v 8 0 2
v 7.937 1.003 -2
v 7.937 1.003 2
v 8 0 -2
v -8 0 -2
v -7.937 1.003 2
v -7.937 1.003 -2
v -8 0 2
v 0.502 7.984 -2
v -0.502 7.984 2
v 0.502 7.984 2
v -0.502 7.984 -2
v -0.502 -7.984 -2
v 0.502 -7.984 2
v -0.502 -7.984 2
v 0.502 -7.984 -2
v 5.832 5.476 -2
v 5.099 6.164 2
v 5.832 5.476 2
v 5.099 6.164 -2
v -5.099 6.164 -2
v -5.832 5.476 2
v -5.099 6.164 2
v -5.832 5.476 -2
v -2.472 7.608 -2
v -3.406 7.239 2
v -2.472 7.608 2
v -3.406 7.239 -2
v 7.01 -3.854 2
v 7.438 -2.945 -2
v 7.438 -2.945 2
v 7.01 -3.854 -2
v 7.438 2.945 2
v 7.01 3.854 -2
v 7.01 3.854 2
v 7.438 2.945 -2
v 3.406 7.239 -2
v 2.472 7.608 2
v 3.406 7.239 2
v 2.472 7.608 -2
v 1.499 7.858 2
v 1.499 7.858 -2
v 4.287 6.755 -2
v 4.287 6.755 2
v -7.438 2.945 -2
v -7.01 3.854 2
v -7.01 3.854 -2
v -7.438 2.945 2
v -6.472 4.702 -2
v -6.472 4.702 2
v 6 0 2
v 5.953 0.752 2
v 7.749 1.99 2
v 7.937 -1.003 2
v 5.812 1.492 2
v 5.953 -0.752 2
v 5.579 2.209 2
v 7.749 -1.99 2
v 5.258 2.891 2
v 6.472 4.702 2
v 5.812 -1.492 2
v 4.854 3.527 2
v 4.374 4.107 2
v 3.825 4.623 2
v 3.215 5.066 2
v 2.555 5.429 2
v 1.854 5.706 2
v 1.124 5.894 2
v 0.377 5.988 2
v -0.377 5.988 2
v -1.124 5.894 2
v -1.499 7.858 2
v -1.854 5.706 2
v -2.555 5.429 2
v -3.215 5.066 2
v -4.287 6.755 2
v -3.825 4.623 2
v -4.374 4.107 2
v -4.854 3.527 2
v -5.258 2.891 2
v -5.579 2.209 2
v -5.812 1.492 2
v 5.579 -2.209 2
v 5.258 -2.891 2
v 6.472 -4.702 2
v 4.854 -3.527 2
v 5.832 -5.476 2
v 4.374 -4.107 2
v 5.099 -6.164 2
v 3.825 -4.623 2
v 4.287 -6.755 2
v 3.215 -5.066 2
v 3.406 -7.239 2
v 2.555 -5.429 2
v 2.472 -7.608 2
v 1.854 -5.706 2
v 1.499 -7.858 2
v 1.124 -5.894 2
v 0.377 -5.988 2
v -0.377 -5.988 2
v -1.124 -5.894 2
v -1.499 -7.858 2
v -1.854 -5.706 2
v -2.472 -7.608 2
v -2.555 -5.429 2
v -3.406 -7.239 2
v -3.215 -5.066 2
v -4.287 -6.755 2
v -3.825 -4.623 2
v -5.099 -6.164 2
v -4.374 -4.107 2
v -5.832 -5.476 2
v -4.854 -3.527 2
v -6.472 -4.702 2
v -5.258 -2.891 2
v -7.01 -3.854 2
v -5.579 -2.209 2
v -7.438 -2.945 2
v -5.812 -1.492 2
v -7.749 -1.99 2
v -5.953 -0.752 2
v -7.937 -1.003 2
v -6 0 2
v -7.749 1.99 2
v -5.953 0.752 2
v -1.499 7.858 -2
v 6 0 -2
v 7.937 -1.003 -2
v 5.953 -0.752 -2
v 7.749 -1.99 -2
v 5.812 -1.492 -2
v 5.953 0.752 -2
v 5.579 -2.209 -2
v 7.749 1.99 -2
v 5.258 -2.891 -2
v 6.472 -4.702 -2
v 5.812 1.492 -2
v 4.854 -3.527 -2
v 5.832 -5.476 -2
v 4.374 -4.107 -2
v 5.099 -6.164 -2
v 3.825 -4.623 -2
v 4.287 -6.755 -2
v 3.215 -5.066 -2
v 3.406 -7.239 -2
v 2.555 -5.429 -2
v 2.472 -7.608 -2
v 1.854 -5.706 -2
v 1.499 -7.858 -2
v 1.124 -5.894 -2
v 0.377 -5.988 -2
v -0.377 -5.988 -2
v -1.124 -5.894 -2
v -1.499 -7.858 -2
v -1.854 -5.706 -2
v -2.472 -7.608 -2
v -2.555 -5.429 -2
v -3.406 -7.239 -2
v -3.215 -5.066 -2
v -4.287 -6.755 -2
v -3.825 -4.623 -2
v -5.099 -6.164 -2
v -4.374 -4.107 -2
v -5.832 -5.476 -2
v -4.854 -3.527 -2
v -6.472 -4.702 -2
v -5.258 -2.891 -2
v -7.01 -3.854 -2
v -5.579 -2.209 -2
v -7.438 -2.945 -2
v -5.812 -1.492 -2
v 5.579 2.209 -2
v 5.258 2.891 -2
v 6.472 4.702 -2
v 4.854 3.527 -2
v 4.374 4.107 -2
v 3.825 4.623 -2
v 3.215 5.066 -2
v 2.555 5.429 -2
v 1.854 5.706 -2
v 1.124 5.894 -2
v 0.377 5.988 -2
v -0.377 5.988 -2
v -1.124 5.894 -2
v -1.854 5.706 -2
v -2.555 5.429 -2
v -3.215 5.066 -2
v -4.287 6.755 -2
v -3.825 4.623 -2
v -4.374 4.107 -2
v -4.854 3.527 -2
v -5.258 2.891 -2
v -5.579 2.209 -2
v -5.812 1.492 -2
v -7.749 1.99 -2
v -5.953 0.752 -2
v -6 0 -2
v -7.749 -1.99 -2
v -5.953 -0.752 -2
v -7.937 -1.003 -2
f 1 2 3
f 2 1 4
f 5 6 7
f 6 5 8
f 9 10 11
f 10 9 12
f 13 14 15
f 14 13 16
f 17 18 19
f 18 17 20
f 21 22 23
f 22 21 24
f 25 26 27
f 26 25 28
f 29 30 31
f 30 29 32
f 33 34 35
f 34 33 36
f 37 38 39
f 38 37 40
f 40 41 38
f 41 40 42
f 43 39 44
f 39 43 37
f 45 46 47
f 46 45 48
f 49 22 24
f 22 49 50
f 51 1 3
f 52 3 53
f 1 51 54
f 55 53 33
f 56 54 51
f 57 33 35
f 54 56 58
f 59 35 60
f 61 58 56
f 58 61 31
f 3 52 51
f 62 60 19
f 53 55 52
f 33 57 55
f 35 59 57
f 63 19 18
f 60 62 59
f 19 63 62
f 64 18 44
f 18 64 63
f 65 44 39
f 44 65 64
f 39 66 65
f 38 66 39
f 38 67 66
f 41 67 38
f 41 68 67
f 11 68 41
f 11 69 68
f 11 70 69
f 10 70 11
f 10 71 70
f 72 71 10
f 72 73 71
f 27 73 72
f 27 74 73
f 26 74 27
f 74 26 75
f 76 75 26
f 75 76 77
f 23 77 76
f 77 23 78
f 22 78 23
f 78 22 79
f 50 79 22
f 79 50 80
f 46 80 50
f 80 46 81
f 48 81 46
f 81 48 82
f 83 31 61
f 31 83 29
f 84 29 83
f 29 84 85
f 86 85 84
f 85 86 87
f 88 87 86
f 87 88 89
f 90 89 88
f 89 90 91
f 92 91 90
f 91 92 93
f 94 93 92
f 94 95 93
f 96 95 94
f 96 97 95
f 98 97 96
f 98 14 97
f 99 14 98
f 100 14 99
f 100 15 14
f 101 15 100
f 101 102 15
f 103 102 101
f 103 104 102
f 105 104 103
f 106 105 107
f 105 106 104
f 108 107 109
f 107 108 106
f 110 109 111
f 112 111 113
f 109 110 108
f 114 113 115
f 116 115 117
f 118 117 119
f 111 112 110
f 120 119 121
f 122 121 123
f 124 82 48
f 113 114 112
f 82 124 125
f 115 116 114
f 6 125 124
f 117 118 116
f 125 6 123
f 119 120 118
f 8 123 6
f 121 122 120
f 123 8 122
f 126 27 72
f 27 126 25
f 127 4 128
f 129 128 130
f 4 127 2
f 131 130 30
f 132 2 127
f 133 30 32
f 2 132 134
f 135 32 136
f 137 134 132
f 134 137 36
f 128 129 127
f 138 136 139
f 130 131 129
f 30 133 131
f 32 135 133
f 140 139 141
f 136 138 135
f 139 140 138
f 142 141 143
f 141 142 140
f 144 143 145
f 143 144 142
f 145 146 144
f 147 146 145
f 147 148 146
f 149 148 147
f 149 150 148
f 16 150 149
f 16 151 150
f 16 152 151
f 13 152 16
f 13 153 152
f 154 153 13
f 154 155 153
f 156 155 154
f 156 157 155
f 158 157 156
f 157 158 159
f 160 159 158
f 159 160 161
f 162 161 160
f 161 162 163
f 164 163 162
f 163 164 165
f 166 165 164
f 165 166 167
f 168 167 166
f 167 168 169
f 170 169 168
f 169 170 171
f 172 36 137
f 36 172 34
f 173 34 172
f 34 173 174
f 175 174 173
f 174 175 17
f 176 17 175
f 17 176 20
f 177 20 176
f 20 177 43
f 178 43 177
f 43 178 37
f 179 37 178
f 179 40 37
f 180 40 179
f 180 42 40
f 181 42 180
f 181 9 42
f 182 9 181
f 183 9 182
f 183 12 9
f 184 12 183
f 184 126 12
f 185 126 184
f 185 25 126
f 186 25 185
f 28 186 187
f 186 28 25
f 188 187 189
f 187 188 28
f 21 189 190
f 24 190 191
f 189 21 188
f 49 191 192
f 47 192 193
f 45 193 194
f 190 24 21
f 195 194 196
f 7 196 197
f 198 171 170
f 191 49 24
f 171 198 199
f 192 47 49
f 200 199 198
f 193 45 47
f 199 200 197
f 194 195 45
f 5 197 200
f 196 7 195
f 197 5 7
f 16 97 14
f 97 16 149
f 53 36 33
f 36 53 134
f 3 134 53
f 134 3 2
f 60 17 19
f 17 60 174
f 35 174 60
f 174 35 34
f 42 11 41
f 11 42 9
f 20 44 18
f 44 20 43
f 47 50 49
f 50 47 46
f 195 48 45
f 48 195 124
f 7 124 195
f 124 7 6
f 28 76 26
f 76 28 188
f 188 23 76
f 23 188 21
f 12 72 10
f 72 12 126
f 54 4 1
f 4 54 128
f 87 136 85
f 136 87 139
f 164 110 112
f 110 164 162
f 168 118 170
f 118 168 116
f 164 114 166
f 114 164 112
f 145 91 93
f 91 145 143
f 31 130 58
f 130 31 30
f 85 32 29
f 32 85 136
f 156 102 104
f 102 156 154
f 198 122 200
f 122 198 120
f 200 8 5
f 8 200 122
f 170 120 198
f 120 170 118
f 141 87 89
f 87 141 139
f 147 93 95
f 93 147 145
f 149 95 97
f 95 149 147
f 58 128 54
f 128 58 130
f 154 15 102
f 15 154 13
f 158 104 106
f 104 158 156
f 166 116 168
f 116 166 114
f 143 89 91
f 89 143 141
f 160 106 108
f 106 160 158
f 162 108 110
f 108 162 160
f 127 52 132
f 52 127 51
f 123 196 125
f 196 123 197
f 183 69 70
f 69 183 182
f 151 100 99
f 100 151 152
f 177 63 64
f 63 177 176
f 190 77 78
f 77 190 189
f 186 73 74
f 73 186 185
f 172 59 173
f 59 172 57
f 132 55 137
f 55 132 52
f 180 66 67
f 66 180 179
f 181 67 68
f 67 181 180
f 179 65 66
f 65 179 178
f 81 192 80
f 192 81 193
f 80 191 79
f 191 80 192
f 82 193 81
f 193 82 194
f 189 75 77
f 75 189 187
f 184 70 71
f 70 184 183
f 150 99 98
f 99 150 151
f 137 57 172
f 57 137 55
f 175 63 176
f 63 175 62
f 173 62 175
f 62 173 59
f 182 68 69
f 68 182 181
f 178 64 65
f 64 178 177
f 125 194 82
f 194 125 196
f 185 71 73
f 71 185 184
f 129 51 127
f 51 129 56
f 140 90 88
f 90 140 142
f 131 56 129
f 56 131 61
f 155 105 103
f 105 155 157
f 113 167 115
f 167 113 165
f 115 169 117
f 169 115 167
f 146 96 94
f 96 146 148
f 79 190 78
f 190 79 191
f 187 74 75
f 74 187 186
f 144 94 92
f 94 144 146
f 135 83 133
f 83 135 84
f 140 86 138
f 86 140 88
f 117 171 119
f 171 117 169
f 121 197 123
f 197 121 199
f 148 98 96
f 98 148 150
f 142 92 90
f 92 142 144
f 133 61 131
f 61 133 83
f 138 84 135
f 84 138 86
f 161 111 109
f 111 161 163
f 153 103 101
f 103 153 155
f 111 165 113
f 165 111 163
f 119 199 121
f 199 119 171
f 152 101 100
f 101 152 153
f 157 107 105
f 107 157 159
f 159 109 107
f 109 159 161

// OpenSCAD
$fn = 50;


difference() {
	union() {
		translate(v = [0, 0, -2.0000000000]) {
			cylinder(h = 4, r = 8.0000000000);
		}
	}
	union() {
		translate(v = [0, 0, -100.0000000000]) {
			cylinder(h = 200, r = 6);
		}
	}
}
